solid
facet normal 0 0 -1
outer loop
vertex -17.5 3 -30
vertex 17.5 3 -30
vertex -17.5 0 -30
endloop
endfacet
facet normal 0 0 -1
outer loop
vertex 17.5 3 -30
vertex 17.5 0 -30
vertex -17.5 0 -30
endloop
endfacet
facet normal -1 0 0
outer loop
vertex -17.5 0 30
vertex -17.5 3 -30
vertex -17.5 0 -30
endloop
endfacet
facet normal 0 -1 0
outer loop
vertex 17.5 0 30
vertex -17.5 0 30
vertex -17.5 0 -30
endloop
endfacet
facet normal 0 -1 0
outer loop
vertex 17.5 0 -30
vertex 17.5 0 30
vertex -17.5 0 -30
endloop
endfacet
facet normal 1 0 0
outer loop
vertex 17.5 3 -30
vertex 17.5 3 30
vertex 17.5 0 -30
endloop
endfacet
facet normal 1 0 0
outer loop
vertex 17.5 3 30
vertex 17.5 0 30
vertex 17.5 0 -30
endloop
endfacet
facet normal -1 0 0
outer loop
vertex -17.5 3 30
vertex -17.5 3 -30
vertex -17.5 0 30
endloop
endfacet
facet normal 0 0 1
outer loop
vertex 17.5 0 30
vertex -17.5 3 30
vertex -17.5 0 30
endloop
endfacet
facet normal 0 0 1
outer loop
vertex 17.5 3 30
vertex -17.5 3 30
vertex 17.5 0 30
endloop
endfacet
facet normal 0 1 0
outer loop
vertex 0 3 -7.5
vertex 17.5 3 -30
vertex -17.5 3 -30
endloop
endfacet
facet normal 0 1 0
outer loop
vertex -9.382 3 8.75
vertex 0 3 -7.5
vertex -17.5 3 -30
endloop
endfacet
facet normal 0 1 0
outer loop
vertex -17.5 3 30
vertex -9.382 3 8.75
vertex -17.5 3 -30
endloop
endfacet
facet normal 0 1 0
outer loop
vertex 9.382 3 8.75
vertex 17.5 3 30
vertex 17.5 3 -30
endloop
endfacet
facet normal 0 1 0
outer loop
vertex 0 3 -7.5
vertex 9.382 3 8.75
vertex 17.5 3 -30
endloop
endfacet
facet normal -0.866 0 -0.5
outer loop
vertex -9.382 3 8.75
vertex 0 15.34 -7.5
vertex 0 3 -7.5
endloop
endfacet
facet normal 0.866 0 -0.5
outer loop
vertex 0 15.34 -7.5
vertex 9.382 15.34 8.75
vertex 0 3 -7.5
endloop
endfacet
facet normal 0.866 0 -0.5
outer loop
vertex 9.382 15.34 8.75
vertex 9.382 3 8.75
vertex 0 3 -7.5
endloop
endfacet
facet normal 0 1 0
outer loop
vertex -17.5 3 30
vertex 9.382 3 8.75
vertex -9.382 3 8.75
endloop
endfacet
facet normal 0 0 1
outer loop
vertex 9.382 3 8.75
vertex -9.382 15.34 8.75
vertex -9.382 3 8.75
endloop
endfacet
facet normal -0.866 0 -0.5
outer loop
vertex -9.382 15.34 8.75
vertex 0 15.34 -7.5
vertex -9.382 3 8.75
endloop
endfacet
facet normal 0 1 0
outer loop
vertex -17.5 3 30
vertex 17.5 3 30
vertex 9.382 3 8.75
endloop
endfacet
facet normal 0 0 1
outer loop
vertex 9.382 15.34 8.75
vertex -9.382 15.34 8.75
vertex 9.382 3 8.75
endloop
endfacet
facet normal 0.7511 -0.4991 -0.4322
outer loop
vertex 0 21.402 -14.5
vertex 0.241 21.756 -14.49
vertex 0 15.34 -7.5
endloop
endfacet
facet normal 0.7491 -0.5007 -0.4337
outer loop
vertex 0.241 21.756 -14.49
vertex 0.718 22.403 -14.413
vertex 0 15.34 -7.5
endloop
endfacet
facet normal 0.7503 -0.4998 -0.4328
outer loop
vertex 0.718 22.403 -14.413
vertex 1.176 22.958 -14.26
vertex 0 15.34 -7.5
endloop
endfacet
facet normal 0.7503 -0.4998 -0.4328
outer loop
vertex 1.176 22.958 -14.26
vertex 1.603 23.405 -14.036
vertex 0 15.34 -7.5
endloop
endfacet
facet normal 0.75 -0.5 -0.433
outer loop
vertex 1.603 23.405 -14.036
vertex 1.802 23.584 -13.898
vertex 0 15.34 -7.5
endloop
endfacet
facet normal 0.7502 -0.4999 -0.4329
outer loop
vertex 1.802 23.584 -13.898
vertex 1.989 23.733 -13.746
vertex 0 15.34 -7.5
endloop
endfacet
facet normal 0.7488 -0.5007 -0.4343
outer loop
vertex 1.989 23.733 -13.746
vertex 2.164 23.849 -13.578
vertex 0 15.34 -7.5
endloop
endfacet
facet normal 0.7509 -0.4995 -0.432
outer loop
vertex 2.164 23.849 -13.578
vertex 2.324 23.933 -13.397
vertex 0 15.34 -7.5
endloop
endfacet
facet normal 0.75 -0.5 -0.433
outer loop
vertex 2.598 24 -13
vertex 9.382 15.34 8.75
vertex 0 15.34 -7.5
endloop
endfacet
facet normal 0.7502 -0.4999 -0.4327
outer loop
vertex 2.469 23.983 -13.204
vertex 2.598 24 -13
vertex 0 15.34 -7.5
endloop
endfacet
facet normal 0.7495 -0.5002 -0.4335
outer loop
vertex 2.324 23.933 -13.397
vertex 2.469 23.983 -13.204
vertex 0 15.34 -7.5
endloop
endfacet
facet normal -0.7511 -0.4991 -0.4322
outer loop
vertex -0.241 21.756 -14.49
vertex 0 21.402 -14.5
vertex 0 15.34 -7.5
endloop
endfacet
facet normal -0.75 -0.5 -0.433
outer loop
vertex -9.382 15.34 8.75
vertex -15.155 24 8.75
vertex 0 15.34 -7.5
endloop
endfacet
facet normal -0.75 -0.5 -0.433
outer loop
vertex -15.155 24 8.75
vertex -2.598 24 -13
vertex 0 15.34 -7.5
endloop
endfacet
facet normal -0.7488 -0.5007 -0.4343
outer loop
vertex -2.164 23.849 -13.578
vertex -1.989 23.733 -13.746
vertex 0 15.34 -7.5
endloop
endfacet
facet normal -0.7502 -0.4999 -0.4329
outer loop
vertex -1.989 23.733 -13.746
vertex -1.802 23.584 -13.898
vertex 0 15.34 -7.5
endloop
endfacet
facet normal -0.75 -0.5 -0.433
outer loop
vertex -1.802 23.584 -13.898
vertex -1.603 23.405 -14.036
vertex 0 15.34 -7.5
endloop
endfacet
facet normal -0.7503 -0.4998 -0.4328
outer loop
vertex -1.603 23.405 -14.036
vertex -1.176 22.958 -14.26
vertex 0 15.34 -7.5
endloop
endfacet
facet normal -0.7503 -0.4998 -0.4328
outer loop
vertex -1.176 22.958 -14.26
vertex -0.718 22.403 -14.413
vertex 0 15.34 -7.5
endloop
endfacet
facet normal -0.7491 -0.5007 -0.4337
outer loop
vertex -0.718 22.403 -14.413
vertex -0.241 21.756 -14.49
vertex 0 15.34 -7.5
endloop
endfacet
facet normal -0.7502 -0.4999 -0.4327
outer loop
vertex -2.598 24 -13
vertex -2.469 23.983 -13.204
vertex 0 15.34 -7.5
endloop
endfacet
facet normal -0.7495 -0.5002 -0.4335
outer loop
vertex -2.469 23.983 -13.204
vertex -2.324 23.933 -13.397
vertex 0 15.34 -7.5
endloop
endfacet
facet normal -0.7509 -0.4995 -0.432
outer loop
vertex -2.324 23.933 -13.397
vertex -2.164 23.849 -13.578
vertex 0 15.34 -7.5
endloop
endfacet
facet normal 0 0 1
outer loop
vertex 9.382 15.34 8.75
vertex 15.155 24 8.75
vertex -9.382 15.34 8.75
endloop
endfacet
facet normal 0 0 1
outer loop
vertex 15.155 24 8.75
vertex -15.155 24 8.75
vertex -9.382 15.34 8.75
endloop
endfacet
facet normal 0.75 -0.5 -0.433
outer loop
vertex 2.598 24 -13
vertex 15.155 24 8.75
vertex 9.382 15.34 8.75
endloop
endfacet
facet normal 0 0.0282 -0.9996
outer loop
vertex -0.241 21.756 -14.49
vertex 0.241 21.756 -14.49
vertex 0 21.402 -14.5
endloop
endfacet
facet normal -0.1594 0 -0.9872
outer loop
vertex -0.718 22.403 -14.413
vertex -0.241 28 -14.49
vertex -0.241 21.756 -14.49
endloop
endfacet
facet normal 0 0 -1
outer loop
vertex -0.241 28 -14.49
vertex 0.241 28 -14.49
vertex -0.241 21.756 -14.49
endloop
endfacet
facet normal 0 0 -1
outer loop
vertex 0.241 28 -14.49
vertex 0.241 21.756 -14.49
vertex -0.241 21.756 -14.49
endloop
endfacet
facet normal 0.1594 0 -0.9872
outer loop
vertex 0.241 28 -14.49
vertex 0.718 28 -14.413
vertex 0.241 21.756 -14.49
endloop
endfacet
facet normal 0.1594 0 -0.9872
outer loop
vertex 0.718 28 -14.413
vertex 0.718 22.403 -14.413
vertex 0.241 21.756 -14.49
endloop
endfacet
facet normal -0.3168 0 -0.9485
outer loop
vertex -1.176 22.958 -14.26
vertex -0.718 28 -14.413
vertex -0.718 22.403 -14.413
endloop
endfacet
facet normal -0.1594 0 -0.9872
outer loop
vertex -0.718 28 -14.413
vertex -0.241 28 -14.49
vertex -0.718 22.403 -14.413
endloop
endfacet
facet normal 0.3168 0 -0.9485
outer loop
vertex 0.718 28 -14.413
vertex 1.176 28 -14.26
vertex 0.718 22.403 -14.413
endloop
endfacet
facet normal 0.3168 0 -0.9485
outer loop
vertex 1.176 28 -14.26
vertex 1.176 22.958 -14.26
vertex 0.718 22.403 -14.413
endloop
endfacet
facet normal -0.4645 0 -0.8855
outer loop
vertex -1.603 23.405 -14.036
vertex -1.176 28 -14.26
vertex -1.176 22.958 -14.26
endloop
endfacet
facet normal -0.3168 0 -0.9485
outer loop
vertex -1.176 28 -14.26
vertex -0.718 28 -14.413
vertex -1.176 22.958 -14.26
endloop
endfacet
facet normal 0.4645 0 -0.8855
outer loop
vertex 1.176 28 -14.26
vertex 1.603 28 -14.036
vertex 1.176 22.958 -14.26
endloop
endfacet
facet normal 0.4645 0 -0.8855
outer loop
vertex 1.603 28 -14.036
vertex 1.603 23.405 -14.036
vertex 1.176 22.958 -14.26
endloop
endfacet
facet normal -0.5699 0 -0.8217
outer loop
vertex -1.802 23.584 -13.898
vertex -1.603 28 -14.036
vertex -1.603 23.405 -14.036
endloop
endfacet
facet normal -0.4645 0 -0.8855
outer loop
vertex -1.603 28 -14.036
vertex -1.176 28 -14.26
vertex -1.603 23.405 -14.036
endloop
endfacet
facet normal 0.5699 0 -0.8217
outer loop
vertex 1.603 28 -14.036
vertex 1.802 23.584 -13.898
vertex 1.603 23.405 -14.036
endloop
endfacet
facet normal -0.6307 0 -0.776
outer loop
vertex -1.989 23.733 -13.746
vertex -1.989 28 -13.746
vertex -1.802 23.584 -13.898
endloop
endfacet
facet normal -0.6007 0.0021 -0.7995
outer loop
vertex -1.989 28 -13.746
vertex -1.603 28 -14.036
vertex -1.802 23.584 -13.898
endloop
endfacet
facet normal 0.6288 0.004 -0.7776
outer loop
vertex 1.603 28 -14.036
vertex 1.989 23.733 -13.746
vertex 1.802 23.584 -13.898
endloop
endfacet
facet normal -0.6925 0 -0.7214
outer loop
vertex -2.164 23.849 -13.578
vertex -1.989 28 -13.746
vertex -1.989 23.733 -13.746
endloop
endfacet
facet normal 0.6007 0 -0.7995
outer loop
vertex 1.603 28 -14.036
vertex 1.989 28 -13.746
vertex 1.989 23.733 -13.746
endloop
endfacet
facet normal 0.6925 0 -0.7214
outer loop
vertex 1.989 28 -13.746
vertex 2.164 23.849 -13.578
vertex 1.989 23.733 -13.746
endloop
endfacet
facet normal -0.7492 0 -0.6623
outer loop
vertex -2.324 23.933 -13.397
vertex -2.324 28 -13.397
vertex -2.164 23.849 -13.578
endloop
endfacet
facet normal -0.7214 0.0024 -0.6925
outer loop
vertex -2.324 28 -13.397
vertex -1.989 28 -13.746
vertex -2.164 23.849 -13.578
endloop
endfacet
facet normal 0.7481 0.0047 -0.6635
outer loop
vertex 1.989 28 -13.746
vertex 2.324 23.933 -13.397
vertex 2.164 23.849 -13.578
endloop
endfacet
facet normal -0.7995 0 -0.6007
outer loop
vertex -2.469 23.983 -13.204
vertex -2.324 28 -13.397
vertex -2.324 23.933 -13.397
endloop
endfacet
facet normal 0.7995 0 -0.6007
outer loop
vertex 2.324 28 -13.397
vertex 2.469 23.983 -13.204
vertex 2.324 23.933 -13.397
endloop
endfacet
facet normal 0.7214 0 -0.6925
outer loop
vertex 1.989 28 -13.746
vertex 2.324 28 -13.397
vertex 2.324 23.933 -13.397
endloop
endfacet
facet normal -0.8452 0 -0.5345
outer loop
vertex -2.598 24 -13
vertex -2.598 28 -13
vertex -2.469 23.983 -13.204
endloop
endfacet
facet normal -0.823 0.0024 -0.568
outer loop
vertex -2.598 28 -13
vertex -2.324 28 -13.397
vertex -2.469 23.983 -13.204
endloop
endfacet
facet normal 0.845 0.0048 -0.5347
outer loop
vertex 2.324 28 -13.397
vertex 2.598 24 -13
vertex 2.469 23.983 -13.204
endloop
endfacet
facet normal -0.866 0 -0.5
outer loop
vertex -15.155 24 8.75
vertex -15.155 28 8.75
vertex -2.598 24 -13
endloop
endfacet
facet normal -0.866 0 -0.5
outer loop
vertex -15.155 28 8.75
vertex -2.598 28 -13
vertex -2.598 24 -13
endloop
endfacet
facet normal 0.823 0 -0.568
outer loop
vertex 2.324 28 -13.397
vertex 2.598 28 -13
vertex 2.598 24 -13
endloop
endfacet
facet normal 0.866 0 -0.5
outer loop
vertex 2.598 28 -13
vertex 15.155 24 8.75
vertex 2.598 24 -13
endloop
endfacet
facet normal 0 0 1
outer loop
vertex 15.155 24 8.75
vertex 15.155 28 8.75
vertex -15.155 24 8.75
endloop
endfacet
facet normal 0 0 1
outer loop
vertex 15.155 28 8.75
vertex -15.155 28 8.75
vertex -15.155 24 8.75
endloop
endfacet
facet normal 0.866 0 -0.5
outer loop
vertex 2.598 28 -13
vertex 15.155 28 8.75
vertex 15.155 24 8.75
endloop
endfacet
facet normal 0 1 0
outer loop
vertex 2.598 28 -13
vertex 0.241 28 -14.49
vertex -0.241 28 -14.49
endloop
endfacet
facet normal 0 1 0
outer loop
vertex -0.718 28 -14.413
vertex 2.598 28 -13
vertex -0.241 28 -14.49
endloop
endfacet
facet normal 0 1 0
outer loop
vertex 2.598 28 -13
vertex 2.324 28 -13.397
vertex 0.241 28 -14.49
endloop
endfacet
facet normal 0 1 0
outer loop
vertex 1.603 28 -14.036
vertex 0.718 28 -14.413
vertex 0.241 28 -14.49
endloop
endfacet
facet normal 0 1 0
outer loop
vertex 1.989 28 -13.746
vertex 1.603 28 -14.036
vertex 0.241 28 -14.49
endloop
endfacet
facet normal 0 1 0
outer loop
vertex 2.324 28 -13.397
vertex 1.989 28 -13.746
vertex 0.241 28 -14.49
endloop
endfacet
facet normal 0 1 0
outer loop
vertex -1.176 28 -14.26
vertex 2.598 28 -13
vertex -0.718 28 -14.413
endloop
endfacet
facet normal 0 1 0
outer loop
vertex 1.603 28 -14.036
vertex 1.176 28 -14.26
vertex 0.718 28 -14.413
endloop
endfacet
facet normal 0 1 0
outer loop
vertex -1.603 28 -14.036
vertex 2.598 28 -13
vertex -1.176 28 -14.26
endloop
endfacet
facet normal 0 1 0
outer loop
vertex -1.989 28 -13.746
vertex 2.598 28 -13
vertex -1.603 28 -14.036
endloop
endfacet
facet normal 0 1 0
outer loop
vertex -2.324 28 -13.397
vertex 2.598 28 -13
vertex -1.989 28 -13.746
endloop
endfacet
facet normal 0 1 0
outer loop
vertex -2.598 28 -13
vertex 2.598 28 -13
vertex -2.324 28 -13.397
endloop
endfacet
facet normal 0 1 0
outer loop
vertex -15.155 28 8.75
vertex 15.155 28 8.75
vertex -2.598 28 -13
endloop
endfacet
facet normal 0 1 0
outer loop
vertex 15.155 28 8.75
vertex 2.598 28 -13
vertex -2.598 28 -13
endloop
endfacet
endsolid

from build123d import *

# Parameters (mm, degrees)
SKETCH1_W           = 35
SKETCH1_H           = 60
BOSS_EXTRUDE1_DEPTH = 3
BOSS_EXTRUDE2_DEPTH = 25
CUT_EXTRUDE1_DEPTH  = 1
CHAMFER1_SIZE       = 11.547005384
CHAMFER1_SIZE_2     = 20


with BuildPart() as part:
    # Sketch1 → Boss-Extrude1 (new body)
    with BuildSketch(Plane(origin=(0, 0, 0), x_dir=(1, 0, 0), z_dir=(0, 1, 0))):
        Rectangle(SKETCH1_W, SKETCH1_H)
    extrude(amount=BOSS_EXTRUDE1_DEPTH)

    # Sketch2 → Boss-Extrude2 (add)
    with BuildSketch(Plane(origin=(0, 3, 0), x_dir=(1, 0, 0), z_dir=(0, 1, 0))):
        with BuildLine():
            Line((-2.598076211, 13), (-15.155444566, -8.75))
            Line((-15.155444566, -8.75), (15.155444566, -8.75))
            Line((15.155444566, -8.75), (2.598076211, 13))
            ThreePointArc((2.598076211, 13), (0, 14.5), (-2.598076211, 13))
        make_face()
    extrude(amount=BOSS_EXTRUDE2_DEPTH)

    # Sketch3 → Cut-Extrude1 (cut)
    with BuildSketch(Plane(origin=(0, 3, 0), x_dir=(1, 0, 0), z_dir=(0, 1, 0))):
        with BuildLine():
            Line((-6.495190528, -3.75), (0, 7.5))
            Line((0, 7.5), (6.495190528, -3.75))
            Line((6.495190528, -3.75), (9.381941874, -8.75))
            Line((9.381941874, -8.75), (15.155444566, -8.75))
            Line((15.155444566, -8.75), (2.598076211, 13))
            ThreePointArc((2.598076211, 13), (0, 14.5), (-2.598076211, 13))
            Line((-2.598076211, 13), (-15.155444566, -8.75))
            Line((-15.155444566, -8.75), (-9.381941874, -8.75))
            Line((-9.381941874, -8.75), (-6.495190528, -3.75))
        make_face()
    extrude(amount=CUT_EXTRUDE1_DEPTH, mode=Mode.SUBTRACT)

    # Chamfer1
    # the kernel refuses this chamfer: 20, 11.547005384 mm, written as the material it takes off along each edge
    with BuildSketch(Plane(origin=(41.026302113, 4, 53.559639706), x_dir=(-0.8645728572665647, -0.057893862402670825, 0.4991613718769001), z_dir=(-0.5000000000000038, 0, -0.8660254037844365))) as chamfer1_piece_1_section:
        Polygon((CHAMFER1_SIZE * 0.998322743736, CHAMFER1_SIZE * 0.0578938624016), (-CHAMFER1_SIZE_2 * 0.0578938624027, CHAMFER1_SIZE_2 * 0.998322743754), (0, 0), align=None)
    chamfer1_piece_1 = extrude(amount=128.598166896, mode=Mode.PRIVATE)
    chamfer1_piece_1 = split(chamfer1_piece_1, bisect_by=Plane(origin=(4.860727158, 12.114805615, 0.9190264), z_dir=(0.8660254037844364, 0, -0.500000000000004)), keep=Keep.TOP, mode=Mode.PRIVATE)
    add(chamfer1_piece_1, mode=Mode.SUBTRACT)
    with BuildSketch(Plane(origin=(41.026302113, 4, 53.559639706), x_dir=(-0.8645728572665647, -0.057893862402670825, 0.4991613718769001), z_dir=(-0.5000000000000038, 0, -0.8660254037844365))) as chamfer1_piece_2_section:
        Polygon((CHAMFER1_SIZE * 0.998322743736, CHAMFER1_SIZE * 0.0578938624016), (-CHAMFER1_SIZE_2 * 0.0578938624027, CHAMFER1_SIZE_2 * 0.998322743754), (0, 0), align=None)
    chamfer1_piece_2 = extrude(amount=128.598166896, mode=Mode.PRIVATE)
    chamfer1_piece_2 = split(chamfer1_piece_2, bisect_by=Plane(origin=(-0.762291107, 7.498768365, -6.179673073), z_dir=(-0.8660254037844386, 0, -0.5000000000000001)), keep=Keep.TOP, mode=Mode.PRIVATE)
    add(chamfer1_piece_2, mode=Mode.SUBTRACT)
    with BuildSketch(Plane(origin=(23.272781335, 4, -57.809639706), x_dir=(0.864572857266568, -0.05789386240267081, 0.49916137187689447), z_dir=(-0.49999999999999817, 0, 0.8660254037844398))) as chamfer1_piece_3_section:
        Polygon((CHAMFER1_SIZE * 0.998322743736, CHAMFER1_SIZE * 0.0578938624016), (-CHAMFER1_SIZE_2 * 0.0578938624027, CHAMFER1_SIZE_2 * 0.998322743754), (0, 0), align=None)
    chamfer1_piece_3 = extrude(amount=128.598166896, mode=Mode.PRIVATE)
    chamfer1_piece_3 = split(chamfer1_piece_3, bisect_by=Plane(origin=(0.762291107, 7.498768365, -6.179673073), z_dir=(0.8660254037844364, 0, -0.500000000000004)), keep=Keep.TOP, mode=Mode.PRIVATE)
    add(chamfer1_piece_3, mode=Mode.SUBTRACT)
    with BuildSketch(Plane(origin=(23.272781335, 4, -57.809639706), x_dir=(0.864572857266568, -0.05789386240267081, 0.49916137187689447), z_dir=(-0.49999999999999817, 0, 0.8660254037844398))) as chamfer1_piece_4_section:
        Polygon((CHAMFER1_SIZE * 0.998322743736, CHAMFER1_SIZE * 0.0578938624016), (-CHAMFER1_SIZE_2 * 0.0578938624027, CHAMFER1_SIZE_2 * 0.998322743754), (0, 0), align=None)
    chamfer1_piece_4 = extrude(amount=128.598166896, mode=Mode.PRIVATE)
    chamfer1_piece_4 = split(chamfer1_piece_4, bisect_by=Plane(origin=(-4.860727158, 12.114805615, 0.9190264), z_dir=(-0.8660254037844386, 0, -0.5000000000000001)), keep=Keep.TOP, mode=Mode.PRIVATE)
    add(chamfer1_piece_4, mode=Mode.SUBTRACT)


solid = part.part
